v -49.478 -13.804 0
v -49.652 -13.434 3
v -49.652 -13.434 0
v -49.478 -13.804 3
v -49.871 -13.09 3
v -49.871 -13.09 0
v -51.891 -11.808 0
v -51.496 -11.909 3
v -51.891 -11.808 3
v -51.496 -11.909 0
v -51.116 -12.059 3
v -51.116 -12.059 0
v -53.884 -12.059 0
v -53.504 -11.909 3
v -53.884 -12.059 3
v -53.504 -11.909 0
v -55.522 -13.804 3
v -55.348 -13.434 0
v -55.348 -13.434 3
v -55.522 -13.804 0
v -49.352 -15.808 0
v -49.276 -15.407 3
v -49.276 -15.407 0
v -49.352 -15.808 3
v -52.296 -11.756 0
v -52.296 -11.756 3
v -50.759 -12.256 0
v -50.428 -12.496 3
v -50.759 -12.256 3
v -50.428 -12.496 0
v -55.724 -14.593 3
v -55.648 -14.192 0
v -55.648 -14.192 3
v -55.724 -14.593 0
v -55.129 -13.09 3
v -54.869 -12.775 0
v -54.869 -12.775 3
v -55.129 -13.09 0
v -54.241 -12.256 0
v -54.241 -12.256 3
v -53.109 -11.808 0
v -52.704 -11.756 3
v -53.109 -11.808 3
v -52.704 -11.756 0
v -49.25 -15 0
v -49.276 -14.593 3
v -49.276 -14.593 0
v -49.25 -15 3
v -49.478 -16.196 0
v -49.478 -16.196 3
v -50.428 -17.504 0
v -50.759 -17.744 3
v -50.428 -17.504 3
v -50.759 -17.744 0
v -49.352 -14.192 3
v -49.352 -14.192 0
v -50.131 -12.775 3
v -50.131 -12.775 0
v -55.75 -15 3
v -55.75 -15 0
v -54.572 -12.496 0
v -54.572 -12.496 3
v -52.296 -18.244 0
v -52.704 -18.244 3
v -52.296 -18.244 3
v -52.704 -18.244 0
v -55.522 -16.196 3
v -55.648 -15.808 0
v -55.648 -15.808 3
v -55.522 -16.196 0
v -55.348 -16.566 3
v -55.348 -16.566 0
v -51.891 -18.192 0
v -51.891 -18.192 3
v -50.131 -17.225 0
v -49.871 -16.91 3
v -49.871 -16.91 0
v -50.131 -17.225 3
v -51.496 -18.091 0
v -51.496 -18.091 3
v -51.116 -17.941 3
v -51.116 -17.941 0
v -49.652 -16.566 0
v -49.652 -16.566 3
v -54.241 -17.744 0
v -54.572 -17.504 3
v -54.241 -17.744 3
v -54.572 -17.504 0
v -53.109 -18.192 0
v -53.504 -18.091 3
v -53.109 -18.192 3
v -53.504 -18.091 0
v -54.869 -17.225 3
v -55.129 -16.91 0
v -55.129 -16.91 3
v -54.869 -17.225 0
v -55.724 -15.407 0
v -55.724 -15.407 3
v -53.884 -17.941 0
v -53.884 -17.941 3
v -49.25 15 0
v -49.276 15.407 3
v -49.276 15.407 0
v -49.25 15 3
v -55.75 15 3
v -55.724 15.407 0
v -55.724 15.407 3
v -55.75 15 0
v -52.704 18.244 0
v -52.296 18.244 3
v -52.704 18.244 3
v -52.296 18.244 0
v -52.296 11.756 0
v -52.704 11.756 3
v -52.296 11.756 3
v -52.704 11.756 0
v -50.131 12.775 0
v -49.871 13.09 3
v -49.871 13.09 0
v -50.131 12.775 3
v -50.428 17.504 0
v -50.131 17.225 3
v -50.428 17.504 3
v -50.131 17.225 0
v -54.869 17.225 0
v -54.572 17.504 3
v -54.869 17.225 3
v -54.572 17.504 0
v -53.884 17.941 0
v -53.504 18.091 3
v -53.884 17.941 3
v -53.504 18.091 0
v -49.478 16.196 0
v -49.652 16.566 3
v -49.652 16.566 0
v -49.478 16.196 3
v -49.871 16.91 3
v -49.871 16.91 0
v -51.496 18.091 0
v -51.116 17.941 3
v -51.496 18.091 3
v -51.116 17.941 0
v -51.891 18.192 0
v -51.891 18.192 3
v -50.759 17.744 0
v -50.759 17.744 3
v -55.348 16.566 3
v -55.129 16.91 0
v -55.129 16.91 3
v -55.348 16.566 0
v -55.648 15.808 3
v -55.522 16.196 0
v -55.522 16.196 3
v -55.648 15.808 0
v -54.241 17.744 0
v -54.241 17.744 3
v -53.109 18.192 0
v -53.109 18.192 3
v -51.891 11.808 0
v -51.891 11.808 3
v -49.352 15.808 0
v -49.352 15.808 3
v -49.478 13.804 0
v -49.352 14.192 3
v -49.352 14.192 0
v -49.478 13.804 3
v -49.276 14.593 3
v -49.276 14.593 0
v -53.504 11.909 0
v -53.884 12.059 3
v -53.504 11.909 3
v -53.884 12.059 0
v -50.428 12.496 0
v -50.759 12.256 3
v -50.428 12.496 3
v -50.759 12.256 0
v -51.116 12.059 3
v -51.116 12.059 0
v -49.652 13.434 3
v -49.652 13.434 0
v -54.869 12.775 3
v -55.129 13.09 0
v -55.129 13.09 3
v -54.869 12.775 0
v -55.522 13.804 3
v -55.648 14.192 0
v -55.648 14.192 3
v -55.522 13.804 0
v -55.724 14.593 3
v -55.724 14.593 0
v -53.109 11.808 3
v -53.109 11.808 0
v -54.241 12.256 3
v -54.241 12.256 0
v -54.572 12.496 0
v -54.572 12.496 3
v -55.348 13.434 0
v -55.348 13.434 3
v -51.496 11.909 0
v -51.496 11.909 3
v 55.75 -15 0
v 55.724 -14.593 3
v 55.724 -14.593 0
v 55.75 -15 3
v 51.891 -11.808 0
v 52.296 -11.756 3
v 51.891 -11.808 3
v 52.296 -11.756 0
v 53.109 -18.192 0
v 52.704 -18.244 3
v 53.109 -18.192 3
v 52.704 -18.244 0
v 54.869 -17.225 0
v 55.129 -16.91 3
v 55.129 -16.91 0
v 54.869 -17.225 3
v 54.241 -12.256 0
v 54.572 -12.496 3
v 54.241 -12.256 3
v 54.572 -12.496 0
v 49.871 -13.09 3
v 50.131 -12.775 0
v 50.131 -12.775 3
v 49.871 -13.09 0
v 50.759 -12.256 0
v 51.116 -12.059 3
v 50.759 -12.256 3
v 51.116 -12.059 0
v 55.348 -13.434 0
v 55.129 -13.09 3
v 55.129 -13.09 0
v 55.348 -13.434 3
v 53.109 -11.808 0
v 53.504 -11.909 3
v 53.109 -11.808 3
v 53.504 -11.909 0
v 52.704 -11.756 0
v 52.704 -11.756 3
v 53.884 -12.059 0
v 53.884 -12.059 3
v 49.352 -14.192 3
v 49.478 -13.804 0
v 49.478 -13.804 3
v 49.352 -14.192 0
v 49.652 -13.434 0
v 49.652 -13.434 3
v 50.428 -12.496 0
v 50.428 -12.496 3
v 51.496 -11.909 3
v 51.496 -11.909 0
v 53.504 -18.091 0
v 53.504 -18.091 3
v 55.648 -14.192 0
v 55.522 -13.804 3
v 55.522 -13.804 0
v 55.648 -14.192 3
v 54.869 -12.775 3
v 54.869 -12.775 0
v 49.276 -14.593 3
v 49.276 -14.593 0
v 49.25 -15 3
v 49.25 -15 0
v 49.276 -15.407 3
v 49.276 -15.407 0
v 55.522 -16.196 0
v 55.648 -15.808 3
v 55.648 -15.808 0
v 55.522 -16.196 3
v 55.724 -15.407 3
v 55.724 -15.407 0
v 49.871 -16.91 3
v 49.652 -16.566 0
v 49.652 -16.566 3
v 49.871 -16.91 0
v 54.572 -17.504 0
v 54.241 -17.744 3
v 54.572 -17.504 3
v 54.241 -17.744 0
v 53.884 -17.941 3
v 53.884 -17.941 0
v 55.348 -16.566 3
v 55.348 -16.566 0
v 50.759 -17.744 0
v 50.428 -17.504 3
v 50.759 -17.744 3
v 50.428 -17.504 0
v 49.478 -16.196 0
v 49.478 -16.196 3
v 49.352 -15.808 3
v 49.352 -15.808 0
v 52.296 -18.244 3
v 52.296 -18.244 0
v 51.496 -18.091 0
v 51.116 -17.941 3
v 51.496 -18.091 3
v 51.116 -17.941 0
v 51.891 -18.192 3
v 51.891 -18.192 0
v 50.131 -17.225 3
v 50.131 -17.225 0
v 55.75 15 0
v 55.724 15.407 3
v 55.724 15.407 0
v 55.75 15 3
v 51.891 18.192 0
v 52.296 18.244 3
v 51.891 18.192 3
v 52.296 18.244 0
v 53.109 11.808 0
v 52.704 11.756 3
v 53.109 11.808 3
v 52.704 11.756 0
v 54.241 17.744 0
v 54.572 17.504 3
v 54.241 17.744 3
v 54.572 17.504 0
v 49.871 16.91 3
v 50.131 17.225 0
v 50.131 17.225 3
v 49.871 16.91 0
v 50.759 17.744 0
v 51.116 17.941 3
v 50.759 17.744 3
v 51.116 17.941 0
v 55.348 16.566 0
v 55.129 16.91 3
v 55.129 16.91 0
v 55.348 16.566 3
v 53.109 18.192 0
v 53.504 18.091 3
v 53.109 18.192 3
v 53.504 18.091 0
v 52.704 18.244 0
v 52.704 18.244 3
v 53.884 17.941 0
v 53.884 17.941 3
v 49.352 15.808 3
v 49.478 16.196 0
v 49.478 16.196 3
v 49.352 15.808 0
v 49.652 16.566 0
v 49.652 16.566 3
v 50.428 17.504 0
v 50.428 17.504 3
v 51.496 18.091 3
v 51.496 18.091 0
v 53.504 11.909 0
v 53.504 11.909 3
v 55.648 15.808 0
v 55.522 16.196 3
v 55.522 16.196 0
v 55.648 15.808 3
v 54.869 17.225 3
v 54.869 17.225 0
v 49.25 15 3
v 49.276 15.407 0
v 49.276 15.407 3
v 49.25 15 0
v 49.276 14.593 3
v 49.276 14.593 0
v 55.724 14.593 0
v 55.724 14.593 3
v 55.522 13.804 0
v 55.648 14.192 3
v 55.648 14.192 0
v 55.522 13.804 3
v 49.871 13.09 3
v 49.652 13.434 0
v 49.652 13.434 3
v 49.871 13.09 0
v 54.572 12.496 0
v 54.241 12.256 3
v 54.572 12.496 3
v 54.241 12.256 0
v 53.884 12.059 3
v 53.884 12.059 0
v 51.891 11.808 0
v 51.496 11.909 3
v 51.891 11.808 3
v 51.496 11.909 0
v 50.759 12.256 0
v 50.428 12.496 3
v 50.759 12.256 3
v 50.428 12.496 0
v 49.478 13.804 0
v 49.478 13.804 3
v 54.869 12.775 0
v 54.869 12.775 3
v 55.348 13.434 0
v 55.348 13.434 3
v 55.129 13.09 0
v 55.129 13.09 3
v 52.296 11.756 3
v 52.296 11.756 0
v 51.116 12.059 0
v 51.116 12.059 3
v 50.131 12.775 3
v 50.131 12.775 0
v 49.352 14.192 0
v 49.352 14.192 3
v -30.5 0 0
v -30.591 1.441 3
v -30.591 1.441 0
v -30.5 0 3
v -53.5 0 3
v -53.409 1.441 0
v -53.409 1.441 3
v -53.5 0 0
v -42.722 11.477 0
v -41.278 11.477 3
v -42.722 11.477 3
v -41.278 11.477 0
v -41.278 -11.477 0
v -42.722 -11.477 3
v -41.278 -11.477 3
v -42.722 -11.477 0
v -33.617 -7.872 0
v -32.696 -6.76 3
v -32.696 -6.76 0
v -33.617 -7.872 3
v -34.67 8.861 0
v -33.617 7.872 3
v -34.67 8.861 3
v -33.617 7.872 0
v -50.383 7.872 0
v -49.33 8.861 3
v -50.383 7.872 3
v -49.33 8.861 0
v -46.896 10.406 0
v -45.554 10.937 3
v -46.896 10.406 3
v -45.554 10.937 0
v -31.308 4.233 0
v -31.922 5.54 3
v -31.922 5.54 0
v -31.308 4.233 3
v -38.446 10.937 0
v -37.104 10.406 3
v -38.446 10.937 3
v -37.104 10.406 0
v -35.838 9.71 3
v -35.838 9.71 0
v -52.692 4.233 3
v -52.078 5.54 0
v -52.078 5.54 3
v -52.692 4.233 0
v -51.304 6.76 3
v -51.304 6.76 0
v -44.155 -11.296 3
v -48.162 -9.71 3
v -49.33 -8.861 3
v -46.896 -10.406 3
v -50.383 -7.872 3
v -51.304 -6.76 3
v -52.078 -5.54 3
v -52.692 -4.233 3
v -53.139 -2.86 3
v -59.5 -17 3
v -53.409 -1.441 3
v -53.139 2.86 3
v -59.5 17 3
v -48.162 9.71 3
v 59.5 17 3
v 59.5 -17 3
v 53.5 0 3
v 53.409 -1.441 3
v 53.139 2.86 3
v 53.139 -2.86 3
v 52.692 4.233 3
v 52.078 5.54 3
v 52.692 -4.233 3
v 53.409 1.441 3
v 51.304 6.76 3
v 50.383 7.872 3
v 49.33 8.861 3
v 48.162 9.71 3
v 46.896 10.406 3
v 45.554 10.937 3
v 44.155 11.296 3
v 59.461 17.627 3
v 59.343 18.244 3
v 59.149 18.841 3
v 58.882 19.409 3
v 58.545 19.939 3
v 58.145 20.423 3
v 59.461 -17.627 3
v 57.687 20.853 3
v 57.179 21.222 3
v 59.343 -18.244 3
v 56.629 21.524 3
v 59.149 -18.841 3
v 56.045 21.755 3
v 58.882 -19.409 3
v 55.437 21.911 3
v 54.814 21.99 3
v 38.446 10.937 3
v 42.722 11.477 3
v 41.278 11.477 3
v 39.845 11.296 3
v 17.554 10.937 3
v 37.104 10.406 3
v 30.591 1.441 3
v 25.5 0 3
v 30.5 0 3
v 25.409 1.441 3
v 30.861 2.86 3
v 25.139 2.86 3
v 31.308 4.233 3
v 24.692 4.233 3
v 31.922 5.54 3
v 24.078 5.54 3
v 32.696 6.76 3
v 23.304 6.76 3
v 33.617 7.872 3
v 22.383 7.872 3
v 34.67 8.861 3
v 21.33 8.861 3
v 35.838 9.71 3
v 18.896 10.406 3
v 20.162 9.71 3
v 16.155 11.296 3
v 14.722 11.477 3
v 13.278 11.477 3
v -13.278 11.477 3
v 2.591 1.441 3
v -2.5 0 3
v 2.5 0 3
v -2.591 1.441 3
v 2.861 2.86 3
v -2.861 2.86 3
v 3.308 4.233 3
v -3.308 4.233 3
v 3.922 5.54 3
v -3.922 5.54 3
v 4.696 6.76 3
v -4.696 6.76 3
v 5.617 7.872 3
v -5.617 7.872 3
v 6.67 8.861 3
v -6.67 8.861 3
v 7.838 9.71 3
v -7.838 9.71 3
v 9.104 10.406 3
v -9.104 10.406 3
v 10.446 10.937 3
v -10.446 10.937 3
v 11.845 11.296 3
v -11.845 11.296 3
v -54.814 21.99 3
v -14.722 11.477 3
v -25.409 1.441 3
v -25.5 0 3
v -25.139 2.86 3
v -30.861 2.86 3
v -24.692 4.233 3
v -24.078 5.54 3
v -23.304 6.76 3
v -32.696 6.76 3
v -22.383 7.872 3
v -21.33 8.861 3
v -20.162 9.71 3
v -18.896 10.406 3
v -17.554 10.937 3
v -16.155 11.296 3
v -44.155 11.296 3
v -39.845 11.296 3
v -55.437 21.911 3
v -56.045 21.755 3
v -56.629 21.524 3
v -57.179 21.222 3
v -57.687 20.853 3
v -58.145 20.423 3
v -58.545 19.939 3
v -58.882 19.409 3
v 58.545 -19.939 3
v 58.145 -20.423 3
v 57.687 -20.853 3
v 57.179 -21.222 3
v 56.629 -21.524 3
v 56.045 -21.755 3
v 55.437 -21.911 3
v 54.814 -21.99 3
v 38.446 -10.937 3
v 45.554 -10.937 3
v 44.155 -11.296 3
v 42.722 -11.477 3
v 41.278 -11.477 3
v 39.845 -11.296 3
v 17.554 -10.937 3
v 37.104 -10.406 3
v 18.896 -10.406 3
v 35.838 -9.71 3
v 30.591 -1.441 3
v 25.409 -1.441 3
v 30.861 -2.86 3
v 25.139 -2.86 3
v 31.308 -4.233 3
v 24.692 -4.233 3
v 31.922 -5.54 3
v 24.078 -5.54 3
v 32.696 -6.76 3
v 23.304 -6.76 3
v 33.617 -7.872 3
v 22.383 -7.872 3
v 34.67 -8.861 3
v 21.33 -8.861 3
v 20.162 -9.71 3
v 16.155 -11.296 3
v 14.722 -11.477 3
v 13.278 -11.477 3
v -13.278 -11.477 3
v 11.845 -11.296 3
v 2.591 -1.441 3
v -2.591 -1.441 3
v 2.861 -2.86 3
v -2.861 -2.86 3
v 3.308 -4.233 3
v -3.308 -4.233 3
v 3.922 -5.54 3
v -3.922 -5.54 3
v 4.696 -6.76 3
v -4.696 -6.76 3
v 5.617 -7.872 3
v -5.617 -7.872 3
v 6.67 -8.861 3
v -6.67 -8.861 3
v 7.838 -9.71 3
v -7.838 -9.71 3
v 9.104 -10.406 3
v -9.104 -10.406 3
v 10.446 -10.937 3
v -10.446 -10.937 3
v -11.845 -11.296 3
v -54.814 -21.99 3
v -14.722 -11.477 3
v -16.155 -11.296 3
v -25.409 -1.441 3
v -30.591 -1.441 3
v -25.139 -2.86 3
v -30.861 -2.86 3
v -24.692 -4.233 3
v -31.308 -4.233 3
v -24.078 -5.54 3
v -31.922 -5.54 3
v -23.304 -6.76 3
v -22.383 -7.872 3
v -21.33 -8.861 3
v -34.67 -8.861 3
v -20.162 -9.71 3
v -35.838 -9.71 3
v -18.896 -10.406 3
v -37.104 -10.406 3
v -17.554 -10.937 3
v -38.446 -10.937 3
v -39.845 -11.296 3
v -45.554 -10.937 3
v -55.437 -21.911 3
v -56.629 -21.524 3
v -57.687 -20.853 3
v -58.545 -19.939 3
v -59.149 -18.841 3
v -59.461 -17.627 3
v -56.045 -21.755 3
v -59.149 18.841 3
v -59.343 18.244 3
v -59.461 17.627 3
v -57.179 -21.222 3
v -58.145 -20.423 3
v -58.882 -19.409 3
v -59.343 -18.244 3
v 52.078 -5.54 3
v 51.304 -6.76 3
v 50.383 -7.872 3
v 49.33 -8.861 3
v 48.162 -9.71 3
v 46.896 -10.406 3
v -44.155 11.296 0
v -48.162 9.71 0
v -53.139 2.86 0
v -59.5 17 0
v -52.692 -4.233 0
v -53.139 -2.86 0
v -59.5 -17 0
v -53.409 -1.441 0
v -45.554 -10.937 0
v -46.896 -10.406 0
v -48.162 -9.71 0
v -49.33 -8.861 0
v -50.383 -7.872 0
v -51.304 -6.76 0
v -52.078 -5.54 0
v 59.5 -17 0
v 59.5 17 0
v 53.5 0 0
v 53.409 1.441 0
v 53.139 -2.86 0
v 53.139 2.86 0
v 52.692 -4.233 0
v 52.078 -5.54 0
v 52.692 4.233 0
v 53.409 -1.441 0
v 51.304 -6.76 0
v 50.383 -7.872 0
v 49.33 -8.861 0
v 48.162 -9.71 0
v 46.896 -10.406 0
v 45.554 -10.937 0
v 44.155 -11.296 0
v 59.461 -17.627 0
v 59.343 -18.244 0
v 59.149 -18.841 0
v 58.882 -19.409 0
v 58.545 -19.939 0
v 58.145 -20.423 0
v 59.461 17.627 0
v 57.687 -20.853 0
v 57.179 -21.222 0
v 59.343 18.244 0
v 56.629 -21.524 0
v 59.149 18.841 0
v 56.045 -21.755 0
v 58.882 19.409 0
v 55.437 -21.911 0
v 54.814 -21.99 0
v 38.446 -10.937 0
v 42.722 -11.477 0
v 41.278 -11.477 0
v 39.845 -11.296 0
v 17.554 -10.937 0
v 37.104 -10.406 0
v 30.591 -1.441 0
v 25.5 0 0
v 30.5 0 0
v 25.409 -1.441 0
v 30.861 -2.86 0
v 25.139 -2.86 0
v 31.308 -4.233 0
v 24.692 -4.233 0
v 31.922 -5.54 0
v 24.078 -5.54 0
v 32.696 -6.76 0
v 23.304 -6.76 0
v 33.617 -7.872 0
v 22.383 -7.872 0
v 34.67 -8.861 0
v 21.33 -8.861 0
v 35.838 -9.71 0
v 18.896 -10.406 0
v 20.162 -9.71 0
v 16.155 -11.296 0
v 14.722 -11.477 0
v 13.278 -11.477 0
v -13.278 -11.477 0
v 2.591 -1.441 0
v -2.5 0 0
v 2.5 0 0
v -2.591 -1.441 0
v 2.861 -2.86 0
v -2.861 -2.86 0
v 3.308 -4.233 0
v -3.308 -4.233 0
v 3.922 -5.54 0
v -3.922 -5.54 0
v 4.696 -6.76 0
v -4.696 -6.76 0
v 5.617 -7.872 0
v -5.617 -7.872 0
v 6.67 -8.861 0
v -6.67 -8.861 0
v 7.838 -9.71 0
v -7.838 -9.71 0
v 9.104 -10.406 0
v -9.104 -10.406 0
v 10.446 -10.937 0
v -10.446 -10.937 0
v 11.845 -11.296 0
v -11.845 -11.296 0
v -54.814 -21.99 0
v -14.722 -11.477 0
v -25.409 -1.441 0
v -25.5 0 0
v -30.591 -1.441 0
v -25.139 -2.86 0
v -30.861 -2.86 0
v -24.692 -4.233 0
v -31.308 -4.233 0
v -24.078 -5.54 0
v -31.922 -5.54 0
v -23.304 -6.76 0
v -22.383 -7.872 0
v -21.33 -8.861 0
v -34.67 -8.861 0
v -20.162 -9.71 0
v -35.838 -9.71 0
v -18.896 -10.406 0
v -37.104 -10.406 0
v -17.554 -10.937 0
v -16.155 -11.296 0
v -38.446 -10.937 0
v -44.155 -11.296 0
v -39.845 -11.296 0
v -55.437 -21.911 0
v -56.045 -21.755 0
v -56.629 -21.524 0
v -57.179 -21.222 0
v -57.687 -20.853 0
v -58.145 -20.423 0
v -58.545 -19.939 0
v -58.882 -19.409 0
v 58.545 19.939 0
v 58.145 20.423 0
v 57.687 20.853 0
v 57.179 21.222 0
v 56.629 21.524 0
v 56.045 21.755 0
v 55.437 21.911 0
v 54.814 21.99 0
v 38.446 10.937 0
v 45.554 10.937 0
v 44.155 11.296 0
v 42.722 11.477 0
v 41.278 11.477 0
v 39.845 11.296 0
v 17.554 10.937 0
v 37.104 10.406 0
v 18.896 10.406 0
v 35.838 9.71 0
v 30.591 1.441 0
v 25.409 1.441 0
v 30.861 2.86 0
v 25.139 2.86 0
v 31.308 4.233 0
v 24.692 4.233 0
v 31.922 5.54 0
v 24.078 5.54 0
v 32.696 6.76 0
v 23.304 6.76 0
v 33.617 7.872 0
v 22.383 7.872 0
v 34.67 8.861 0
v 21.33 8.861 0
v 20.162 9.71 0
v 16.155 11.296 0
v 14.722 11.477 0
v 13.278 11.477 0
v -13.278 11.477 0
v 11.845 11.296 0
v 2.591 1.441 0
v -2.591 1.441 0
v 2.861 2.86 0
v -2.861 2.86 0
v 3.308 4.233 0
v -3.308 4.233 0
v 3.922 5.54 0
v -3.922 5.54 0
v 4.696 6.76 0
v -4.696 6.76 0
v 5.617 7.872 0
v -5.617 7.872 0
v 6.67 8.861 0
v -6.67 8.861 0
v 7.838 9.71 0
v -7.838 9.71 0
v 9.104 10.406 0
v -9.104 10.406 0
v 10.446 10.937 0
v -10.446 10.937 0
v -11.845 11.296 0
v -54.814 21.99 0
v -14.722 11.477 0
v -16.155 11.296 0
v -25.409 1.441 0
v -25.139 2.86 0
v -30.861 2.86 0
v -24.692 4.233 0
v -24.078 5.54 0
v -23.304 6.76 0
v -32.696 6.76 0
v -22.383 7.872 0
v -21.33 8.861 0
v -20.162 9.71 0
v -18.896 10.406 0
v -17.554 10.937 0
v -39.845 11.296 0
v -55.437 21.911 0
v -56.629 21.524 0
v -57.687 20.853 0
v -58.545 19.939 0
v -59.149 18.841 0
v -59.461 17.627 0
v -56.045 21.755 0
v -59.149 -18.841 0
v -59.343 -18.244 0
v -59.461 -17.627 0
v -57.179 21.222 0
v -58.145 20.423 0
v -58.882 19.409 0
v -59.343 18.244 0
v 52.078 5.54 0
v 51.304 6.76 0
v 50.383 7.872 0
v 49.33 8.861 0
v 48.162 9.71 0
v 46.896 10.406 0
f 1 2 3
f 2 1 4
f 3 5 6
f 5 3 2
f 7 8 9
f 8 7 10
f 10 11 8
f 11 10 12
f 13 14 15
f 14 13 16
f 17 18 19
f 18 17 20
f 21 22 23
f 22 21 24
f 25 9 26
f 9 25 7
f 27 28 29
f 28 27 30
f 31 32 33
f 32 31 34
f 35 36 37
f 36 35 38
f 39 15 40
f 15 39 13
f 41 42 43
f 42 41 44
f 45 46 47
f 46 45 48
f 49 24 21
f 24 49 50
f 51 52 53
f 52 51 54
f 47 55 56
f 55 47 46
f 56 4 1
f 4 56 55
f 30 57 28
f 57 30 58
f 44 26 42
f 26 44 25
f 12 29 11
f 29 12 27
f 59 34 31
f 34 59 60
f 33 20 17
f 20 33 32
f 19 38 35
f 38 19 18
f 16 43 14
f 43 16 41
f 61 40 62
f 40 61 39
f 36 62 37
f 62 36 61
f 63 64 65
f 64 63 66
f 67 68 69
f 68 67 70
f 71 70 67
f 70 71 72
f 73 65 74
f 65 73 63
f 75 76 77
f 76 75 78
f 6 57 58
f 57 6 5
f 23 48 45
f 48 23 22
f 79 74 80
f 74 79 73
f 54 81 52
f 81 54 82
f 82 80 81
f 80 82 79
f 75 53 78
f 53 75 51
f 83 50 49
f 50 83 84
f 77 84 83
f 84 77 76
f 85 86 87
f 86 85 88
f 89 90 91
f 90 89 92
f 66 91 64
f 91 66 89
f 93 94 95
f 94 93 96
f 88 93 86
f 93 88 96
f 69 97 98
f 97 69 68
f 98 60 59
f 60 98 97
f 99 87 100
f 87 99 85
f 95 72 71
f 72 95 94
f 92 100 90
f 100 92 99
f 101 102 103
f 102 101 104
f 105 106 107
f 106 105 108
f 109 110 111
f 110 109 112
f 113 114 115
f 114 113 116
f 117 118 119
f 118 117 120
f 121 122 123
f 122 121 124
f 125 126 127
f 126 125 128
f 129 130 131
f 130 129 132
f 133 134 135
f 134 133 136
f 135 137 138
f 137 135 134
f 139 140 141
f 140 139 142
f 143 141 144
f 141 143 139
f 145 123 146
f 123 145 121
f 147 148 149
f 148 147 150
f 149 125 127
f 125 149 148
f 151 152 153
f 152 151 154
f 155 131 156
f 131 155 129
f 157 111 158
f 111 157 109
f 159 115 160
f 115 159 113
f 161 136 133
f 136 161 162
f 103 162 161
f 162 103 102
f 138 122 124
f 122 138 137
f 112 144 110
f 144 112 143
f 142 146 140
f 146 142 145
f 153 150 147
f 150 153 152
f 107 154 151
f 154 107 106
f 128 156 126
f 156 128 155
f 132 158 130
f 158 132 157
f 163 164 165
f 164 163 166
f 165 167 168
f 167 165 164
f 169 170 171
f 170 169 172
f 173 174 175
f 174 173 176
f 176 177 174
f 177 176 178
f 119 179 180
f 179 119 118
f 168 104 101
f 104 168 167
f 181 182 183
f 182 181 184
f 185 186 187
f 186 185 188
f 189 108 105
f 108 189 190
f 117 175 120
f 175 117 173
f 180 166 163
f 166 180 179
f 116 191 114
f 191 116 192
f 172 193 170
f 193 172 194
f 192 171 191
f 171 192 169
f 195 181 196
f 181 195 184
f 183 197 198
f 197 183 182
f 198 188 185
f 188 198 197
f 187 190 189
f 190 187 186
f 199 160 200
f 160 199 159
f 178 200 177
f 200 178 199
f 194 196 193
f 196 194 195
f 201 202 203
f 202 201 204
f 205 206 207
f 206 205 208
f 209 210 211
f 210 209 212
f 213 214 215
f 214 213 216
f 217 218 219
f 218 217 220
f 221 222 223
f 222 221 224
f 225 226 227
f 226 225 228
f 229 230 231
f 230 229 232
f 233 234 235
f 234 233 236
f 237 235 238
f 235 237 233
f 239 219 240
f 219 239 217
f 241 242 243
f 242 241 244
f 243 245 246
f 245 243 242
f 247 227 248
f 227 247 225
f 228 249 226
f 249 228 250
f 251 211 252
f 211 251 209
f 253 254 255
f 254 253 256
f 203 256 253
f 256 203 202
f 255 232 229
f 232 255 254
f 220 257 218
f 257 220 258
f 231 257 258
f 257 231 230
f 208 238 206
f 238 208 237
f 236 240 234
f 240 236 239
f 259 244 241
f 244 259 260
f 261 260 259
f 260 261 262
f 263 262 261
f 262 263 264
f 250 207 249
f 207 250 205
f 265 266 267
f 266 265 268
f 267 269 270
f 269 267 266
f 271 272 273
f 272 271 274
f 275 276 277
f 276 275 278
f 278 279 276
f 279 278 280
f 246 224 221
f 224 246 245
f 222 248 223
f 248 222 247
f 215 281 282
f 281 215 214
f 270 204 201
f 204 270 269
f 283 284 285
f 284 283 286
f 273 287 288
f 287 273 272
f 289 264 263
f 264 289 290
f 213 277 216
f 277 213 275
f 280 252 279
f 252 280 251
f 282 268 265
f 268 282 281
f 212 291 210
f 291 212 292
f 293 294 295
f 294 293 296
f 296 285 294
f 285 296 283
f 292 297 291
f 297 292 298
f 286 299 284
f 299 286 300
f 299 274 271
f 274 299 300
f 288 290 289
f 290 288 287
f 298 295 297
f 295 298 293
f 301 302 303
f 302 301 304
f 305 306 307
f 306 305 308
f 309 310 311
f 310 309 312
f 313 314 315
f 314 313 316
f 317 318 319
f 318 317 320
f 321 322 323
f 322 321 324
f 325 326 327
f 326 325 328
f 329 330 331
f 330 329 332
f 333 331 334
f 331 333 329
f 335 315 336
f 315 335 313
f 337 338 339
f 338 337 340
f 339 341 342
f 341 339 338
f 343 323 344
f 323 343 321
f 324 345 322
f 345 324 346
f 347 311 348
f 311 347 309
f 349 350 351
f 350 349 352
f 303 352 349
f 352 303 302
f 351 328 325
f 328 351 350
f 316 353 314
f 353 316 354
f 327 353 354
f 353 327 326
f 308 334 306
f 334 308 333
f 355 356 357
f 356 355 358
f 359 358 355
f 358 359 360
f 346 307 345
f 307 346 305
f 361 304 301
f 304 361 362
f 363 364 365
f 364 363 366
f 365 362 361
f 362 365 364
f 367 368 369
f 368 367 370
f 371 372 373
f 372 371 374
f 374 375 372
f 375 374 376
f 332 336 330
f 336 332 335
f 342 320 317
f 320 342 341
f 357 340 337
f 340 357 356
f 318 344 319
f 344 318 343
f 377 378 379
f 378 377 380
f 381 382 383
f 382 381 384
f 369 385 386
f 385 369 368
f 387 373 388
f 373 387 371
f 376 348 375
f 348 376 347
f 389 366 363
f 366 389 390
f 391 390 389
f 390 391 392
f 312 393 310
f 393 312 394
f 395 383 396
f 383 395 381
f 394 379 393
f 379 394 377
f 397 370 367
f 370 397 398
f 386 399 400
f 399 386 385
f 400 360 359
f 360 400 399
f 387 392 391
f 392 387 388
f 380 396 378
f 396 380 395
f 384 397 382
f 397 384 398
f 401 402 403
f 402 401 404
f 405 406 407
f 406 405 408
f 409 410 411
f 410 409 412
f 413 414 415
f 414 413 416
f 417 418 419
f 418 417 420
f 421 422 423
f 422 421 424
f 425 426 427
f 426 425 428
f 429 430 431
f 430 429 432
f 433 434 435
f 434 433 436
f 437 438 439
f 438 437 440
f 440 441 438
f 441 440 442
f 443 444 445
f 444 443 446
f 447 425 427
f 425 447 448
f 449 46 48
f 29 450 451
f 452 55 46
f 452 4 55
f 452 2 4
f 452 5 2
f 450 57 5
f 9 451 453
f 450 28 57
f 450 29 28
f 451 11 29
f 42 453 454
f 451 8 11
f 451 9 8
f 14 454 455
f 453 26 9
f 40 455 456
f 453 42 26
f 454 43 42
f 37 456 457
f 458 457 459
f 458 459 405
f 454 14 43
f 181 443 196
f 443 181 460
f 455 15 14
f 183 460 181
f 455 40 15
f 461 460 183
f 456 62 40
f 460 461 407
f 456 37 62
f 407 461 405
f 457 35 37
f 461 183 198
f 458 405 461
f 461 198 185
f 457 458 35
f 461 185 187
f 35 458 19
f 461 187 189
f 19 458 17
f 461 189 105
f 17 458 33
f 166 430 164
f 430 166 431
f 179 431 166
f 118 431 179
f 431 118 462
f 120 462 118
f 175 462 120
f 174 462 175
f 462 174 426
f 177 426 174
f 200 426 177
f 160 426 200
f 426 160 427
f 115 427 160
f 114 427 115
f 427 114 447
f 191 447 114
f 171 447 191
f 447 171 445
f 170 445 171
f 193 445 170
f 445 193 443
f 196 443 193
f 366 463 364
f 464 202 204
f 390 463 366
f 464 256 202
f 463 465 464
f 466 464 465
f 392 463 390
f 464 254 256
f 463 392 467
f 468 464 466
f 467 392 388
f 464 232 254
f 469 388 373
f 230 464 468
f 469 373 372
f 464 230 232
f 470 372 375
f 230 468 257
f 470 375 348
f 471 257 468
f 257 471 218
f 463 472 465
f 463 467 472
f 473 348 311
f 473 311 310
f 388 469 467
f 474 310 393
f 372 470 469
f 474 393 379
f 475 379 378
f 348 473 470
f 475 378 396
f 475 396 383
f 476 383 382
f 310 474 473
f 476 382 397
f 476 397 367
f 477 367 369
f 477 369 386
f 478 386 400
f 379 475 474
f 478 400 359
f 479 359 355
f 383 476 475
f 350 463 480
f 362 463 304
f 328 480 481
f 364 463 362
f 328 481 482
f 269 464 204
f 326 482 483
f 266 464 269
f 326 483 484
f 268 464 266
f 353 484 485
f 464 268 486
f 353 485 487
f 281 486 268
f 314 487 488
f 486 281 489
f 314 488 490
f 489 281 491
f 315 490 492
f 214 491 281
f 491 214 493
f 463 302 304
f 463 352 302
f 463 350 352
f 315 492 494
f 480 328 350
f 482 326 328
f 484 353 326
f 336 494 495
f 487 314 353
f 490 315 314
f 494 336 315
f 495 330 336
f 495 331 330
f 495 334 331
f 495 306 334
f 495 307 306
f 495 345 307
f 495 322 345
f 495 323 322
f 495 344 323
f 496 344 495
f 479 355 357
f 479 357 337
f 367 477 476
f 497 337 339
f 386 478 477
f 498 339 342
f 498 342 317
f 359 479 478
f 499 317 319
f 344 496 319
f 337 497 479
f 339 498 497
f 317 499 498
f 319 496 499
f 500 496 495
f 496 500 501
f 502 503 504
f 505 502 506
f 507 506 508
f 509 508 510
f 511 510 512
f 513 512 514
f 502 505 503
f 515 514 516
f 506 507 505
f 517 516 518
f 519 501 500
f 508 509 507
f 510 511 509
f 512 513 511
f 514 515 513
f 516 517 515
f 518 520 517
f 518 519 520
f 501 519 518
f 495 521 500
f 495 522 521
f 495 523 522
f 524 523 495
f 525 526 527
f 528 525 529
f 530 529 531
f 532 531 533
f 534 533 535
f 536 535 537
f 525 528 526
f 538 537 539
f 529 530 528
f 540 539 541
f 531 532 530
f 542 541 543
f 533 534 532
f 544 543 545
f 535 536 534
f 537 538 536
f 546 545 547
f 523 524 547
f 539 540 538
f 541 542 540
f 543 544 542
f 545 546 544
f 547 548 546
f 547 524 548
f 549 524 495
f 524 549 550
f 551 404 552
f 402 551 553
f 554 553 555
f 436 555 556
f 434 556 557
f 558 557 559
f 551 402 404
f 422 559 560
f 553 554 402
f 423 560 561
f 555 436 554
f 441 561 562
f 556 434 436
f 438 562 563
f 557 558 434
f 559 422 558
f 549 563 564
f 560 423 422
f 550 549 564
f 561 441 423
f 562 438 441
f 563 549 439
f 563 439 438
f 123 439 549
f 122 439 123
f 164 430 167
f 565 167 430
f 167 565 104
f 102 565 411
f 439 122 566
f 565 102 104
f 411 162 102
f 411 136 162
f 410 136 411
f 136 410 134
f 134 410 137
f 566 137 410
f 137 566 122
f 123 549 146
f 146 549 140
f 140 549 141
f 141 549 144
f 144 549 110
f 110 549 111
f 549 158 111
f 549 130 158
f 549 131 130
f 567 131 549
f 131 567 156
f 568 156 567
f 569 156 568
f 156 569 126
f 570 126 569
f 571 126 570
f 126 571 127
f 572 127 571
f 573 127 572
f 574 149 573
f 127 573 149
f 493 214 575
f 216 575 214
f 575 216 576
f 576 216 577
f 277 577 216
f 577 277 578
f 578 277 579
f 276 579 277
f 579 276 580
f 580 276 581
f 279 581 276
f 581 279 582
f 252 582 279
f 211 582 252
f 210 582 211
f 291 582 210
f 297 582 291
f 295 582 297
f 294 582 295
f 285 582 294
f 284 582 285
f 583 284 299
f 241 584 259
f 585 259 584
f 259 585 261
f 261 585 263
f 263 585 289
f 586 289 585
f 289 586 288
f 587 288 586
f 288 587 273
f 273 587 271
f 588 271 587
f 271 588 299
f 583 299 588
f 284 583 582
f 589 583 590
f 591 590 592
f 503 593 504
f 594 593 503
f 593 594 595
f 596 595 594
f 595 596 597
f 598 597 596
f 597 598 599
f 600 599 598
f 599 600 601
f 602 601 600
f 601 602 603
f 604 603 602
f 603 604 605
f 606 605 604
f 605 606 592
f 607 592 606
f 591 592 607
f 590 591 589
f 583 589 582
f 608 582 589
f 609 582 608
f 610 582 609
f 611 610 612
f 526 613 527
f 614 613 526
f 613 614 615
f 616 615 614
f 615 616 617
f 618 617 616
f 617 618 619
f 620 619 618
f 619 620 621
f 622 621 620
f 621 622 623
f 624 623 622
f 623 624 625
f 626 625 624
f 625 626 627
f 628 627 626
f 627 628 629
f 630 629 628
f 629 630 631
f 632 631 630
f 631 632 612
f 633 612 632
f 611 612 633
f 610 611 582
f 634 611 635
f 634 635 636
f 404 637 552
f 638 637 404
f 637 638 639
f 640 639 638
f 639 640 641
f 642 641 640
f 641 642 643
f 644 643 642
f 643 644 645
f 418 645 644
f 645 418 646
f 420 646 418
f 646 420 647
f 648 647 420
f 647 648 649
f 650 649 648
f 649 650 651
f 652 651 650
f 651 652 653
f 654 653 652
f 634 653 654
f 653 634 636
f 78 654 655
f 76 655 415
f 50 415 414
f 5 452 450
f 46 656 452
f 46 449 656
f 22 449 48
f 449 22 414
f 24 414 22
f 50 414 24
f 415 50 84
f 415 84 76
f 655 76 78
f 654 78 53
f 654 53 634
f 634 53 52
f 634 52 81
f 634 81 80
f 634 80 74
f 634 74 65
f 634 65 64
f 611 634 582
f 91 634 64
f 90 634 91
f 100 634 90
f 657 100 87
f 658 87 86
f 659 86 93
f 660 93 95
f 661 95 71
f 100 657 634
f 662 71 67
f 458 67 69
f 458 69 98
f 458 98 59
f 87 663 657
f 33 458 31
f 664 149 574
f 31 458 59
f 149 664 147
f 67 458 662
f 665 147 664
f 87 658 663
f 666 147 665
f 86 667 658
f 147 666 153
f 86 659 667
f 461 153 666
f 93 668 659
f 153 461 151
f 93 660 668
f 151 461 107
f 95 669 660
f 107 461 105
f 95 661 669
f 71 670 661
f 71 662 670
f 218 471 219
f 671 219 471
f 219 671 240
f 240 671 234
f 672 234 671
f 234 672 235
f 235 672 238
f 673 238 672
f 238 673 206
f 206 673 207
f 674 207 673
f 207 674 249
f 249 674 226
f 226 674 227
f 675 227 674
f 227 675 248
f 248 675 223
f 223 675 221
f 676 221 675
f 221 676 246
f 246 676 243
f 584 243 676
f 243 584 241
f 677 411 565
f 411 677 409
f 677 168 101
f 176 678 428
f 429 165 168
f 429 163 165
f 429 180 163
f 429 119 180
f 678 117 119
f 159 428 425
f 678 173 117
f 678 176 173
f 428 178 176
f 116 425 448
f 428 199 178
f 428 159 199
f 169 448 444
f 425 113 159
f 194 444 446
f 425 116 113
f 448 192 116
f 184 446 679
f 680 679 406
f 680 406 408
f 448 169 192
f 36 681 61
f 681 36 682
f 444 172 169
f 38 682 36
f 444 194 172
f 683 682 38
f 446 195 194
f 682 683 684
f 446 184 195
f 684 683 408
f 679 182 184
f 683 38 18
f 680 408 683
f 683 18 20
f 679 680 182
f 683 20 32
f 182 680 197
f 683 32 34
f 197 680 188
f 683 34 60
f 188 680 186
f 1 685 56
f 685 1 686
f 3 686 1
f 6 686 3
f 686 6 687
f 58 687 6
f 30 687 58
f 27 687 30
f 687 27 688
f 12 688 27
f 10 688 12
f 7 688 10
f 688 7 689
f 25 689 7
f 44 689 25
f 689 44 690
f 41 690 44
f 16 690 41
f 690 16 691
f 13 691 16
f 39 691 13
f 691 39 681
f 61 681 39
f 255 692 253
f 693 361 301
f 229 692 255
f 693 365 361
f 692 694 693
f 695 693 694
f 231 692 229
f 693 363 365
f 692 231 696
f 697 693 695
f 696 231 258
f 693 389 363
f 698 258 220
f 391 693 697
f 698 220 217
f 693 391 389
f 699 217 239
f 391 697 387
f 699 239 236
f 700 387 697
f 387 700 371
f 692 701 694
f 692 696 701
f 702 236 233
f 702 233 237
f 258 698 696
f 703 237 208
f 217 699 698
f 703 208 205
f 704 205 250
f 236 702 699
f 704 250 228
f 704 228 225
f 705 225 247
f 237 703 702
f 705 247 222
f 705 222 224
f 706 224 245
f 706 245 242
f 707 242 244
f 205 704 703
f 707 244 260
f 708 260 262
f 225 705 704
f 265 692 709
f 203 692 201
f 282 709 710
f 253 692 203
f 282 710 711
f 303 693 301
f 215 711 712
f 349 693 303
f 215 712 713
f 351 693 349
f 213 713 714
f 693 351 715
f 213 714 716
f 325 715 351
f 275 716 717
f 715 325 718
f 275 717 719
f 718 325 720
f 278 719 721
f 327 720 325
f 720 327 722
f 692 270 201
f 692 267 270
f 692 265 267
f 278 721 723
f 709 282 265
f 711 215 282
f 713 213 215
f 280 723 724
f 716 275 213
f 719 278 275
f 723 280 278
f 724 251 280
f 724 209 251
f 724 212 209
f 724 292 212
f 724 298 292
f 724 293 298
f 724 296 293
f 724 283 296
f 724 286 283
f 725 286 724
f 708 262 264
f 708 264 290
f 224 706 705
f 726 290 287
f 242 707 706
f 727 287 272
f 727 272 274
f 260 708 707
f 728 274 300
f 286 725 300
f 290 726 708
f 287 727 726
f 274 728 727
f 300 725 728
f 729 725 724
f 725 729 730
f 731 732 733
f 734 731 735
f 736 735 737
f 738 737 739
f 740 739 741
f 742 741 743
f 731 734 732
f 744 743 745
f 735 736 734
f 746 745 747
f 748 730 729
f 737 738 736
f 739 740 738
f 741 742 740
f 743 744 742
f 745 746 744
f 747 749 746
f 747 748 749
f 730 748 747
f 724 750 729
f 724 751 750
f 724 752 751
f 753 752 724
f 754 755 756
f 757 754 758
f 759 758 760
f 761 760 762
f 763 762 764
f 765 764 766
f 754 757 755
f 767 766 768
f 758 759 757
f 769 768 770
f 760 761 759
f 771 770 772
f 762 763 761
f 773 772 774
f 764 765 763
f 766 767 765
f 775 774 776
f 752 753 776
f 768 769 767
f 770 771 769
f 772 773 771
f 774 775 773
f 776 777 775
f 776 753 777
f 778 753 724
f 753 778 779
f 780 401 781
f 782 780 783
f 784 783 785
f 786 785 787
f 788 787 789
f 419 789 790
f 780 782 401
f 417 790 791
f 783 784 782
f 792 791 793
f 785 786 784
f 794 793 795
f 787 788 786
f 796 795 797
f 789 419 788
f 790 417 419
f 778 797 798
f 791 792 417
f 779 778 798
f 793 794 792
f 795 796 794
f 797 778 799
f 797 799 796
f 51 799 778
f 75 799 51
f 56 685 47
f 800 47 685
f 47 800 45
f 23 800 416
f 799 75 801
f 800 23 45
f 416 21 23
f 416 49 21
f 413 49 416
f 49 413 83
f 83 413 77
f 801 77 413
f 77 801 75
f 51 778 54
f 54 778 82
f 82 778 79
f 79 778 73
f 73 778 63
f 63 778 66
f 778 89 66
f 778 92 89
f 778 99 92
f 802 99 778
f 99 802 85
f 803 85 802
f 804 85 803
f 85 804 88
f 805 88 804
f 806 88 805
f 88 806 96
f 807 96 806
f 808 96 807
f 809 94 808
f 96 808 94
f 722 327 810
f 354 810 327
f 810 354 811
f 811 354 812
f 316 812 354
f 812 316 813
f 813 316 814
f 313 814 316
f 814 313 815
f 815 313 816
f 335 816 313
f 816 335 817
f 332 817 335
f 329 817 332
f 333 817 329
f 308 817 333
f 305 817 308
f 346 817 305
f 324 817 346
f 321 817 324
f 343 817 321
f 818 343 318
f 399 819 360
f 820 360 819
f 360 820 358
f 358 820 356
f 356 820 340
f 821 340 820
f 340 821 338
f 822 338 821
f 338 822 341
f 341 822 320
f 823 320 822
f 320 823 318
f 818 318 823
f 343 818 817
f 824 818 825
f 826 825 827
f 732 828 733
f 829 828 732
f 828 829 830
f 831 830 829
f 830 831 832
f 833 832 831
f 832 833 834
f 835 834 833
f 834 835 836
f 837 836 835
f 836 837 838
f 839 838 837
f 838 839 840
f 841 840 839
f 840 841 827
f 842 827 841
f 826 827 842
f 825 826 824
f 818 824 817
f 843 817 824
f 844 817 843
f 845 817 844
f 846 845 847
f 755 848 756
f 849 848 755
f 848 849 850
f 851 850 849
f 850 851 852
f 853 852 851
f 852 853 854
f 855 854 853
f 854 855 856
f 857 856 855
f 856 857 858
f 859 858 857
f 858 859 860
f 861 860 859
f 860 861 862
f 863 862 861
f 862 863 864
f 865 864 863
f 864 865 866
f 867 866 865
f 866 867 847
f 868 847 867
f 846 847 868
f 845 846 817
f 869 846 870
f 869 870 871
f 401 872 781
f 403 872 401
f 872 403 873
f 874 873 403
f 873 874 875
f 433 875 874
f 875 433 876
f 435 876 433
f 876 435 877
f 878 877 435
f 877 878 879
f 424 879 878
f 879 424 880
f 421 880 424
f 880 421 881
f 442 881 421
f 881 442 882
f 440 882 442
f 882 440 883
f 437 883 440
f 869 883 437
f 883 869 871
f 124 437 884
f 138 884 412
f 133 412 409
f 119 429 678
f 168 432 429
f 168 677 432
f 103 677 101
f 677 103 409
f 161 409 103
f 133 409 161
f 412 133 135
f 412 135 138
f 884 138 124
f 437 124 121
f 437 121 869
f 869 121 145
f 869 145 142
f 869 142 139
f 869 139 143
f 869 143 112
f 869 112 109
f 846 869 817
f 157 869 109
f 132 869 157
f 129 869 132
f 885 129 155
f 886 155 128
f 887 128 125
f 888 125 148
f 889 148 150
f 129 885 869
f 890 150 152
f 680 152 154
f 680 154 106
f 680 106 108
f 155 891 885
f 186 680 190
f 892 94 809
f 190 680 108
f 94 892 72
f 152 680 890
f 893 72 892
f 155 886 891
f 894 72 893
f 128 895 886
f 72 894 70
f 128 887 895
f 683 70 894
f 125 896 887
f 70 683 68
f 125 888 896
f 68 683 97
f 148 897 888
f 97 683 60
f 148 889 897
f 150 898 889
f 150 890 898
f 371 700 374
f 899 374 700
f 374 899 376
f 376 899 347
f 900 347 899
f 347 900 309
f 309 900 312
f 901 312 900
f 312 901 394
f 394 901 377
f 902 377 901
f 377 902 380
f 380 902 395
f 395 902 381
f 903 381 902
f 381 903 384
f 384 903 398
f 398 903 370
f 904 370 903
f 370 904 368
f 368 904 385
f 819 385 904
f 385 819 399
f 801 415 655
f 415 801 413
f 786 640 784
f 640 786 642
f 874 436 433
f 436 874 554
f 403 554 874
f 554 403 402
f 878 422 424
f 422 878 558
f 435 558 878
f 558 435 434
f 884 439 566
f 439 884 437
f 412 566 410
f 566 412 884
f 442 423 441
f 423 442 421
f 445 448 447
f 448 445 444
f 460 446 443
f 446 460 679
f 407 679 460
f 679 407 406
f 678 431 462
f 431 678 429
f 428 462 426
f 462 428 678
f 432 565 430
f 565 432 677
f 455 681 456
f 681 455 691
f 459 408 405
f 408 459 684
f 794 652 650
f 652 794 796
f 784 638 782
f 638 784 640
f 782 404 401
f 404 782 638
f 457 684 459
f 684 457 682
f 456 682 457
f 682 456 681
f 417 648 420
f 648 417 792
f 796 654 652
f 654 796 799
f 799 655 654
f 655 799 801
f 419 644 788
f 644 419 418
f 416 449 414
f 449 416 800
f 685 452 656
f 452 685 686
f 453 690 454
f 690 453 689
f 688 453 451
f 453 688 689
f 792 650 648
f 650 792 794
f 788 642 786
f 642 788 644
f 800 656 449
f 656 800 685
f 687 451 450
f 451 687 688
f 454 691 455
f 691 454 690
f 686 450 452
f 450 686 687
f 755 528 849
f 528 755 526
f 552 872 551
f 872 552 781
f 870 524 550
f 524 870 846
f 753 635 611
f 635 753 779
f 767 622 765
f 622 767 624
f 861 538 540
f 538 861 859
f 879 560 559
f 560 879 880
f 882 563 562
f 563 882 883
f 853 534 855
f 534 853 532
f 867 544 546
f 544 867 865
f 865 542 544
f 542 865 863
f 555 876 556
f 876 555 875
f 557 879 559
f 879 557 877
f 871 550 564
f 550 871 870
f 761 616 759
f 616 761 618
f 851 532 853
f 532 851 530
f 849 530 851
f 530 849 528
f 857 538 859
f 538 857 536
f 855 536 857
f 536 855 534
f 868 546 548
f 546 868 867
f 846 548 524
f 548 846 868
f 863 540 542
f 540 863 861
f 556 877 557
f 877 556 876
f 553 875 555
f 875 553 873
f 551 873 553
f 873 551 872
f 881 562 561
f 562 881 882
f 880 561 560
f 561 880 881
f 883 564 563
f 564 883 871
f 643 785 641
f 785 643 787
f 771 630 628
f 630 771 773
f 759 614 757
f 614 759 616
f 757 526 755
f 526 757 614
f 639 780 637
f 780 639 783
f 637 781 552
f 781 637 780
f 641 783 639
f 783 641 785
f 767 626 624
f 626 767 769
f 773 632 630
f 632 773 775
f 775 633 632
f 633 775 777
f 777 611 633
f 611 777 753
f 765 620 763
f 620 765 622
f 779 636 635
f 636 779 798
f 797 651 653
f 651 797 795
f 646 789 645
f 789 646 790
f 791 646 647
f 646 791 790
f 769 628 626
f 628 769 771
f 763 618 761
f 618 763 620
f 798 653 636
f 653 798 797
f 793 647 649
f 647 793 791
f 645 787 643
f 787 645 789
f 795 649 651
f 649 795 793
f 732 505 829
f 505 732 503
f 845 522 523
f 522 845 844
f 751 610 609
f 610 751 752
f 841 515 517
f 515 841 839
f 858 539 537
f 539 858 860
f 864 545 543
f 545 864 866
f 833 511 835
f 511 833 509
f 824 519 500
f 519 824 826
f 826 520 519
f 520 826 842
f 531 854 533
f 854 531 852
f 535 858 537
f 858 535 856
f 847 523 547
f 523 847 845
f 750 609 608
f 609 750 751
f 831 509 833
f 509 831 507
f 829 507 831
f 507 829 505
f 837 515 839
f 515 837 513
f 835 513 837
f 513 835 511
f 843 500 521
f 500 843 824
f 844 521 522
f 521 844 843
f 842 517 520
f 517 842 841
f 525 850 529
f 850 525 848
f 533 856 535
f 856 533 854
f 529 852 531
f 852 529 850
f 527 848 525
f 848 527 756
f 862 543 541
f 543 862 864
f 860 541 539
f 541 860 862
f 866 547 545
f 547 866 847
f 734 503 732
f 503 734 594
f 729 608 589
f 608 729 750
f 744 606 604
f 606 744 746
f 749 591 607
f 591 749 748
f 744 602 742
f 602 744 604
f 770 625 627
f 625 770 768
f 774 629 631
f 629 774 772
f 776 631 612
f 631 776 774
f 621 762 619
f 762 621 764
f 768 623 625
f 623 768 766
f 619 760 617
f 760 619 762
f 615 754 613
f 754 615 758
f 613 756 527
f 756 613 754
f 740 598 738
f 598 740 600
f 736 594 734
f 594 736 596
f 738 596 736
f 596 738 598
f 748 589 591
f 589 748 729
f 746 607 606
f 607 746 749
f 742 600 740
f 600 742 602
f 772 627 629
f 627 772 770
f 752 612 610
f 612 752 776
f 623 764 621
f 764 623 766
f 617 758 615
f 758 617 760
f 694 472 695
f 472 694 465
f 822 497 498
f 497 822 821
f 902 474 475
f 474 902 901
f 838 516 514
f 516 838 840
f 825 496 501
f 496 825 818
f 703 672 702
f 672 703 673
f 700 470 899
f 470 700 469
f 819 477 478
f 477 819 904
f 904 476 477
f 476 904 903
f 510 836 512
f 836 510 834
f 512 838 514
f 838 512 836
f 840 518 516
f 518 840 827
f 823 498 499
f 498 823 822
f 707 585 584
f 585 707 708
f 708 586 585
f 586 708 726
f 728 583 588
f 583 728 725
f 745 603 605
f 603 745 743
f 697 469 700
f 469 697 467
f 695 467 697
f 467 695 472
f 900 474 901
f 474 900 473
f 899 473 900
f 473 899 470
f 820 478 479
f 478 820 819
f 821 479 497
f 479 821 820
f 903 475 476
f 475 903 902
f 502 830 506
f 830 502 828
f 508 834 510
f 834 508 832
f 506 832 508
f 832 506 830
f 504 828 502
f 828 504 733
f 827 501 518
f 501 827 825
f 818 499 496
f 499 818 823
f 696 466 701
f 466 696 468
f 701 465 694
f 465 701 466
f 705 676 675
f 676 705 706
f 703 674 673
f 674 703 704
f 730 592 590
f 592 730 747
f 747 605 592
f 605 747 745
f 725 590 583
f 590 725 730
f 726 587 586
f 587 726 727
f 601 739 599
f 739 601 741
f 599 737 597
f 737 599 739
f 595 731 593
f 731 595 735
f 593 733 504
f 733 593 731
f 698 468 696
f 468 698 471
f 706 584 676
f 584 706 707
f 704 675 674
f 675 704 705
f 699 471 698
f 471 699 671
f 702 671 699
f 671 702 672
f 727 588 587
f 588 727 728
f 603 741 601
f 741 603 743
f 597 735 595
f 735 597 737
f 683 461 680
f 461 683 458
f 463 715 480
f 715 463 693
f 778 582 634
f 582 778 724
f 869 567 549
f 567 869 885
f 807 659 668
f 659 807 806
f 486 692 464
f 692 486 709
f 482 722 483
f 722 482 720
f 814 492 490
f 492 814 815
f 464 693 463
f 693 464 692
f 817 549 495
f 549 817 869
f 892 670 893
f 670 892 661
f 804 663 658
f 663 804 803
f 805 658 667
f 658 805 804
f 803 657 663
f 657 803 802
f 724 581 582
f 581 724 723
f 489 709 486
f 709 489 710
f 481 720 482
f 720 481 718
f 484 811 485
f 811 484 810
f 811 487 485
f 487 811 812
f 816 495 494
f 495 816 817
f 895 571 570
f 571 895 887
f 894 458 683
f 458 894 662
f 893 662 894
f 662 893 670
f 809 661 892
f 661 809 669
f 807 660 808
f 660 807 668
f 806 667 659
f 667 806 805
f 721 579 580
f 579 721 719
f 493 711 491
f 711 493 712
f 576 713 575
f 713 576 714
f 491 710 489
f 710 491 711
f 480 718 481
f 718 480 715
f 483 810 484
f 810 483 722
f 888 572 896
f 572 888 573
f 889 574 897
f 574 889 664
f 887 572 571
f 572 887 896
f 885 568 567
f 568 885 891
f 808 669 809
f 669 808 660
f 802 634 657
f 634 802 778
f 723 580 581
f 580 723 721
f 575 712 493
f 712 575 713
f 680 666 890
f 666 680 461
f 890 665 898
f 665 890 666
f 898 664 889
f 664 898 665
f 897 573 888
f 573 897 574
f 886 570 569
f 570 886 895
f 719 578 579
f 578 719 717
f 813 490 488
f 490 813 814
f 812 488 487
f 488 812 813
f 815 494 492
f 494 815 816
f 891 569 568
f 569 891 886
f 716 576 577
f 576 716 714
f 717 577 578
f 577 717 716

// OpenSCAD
$fn = 50;


difference() {
	union() {
		hull() {
			translate(v = [-54.5000000000, 17.0000000000, 0]) {
				cylinder(h = 3, r = 5);
			}
			translate(v = [54.5000000000, 17.0000000000, 0]) {
				cylinder(h = 3, r = 5);
			}
			translate(v = [-54.5000000000, -17.0000000000, 0]) {
				cylinder(h = 3, r = 5);
			}
			translate(v = [54.5000000000, -17.0000000000, 0]) {
				cylinder(h = 3, r = 5);
			}
		}
	}
	union() {
		#translate(v = [-52.5000000000, -15.0000000000, -100.0000000000]) {
			cylinder(h = 200, r = 3.2500000000);
		}
		#translate(v = [-52.5000000000, 15.0000000000, -100.0000000000]) {
			cylinder(h = 200, r = 3.2500000000);
		}
		#translate(v = [52.5000000000, -15.0000000000, -100.0000000000]) {
			cylinder(h = 200, r = 3.2500000000);
		}
		#translate(v = [52.5000000000, 15.0000000000, -100.0000000000]) {
			cylinder(h = 200, r = 3.2500000000);
		}
		#translate(v = [-42.0000000000, 0, 0]) {
			cylinder(h = 3, r = 11.5000000000);
		}
		#translate(v = [-14.0000000000, 0, 0]) {
			cylinder(h = 3, r = 11.5000000000);
		}
		#translate(v = [14.0000000000, 0, 0]) {
			cylinder(h = 3, r = 11.5000000000);
		}
		#translate(v = [42.0000000000, 0, 0]) {
			cylinder(h = 3, r = 11.5000000000);
		}
	}
}
